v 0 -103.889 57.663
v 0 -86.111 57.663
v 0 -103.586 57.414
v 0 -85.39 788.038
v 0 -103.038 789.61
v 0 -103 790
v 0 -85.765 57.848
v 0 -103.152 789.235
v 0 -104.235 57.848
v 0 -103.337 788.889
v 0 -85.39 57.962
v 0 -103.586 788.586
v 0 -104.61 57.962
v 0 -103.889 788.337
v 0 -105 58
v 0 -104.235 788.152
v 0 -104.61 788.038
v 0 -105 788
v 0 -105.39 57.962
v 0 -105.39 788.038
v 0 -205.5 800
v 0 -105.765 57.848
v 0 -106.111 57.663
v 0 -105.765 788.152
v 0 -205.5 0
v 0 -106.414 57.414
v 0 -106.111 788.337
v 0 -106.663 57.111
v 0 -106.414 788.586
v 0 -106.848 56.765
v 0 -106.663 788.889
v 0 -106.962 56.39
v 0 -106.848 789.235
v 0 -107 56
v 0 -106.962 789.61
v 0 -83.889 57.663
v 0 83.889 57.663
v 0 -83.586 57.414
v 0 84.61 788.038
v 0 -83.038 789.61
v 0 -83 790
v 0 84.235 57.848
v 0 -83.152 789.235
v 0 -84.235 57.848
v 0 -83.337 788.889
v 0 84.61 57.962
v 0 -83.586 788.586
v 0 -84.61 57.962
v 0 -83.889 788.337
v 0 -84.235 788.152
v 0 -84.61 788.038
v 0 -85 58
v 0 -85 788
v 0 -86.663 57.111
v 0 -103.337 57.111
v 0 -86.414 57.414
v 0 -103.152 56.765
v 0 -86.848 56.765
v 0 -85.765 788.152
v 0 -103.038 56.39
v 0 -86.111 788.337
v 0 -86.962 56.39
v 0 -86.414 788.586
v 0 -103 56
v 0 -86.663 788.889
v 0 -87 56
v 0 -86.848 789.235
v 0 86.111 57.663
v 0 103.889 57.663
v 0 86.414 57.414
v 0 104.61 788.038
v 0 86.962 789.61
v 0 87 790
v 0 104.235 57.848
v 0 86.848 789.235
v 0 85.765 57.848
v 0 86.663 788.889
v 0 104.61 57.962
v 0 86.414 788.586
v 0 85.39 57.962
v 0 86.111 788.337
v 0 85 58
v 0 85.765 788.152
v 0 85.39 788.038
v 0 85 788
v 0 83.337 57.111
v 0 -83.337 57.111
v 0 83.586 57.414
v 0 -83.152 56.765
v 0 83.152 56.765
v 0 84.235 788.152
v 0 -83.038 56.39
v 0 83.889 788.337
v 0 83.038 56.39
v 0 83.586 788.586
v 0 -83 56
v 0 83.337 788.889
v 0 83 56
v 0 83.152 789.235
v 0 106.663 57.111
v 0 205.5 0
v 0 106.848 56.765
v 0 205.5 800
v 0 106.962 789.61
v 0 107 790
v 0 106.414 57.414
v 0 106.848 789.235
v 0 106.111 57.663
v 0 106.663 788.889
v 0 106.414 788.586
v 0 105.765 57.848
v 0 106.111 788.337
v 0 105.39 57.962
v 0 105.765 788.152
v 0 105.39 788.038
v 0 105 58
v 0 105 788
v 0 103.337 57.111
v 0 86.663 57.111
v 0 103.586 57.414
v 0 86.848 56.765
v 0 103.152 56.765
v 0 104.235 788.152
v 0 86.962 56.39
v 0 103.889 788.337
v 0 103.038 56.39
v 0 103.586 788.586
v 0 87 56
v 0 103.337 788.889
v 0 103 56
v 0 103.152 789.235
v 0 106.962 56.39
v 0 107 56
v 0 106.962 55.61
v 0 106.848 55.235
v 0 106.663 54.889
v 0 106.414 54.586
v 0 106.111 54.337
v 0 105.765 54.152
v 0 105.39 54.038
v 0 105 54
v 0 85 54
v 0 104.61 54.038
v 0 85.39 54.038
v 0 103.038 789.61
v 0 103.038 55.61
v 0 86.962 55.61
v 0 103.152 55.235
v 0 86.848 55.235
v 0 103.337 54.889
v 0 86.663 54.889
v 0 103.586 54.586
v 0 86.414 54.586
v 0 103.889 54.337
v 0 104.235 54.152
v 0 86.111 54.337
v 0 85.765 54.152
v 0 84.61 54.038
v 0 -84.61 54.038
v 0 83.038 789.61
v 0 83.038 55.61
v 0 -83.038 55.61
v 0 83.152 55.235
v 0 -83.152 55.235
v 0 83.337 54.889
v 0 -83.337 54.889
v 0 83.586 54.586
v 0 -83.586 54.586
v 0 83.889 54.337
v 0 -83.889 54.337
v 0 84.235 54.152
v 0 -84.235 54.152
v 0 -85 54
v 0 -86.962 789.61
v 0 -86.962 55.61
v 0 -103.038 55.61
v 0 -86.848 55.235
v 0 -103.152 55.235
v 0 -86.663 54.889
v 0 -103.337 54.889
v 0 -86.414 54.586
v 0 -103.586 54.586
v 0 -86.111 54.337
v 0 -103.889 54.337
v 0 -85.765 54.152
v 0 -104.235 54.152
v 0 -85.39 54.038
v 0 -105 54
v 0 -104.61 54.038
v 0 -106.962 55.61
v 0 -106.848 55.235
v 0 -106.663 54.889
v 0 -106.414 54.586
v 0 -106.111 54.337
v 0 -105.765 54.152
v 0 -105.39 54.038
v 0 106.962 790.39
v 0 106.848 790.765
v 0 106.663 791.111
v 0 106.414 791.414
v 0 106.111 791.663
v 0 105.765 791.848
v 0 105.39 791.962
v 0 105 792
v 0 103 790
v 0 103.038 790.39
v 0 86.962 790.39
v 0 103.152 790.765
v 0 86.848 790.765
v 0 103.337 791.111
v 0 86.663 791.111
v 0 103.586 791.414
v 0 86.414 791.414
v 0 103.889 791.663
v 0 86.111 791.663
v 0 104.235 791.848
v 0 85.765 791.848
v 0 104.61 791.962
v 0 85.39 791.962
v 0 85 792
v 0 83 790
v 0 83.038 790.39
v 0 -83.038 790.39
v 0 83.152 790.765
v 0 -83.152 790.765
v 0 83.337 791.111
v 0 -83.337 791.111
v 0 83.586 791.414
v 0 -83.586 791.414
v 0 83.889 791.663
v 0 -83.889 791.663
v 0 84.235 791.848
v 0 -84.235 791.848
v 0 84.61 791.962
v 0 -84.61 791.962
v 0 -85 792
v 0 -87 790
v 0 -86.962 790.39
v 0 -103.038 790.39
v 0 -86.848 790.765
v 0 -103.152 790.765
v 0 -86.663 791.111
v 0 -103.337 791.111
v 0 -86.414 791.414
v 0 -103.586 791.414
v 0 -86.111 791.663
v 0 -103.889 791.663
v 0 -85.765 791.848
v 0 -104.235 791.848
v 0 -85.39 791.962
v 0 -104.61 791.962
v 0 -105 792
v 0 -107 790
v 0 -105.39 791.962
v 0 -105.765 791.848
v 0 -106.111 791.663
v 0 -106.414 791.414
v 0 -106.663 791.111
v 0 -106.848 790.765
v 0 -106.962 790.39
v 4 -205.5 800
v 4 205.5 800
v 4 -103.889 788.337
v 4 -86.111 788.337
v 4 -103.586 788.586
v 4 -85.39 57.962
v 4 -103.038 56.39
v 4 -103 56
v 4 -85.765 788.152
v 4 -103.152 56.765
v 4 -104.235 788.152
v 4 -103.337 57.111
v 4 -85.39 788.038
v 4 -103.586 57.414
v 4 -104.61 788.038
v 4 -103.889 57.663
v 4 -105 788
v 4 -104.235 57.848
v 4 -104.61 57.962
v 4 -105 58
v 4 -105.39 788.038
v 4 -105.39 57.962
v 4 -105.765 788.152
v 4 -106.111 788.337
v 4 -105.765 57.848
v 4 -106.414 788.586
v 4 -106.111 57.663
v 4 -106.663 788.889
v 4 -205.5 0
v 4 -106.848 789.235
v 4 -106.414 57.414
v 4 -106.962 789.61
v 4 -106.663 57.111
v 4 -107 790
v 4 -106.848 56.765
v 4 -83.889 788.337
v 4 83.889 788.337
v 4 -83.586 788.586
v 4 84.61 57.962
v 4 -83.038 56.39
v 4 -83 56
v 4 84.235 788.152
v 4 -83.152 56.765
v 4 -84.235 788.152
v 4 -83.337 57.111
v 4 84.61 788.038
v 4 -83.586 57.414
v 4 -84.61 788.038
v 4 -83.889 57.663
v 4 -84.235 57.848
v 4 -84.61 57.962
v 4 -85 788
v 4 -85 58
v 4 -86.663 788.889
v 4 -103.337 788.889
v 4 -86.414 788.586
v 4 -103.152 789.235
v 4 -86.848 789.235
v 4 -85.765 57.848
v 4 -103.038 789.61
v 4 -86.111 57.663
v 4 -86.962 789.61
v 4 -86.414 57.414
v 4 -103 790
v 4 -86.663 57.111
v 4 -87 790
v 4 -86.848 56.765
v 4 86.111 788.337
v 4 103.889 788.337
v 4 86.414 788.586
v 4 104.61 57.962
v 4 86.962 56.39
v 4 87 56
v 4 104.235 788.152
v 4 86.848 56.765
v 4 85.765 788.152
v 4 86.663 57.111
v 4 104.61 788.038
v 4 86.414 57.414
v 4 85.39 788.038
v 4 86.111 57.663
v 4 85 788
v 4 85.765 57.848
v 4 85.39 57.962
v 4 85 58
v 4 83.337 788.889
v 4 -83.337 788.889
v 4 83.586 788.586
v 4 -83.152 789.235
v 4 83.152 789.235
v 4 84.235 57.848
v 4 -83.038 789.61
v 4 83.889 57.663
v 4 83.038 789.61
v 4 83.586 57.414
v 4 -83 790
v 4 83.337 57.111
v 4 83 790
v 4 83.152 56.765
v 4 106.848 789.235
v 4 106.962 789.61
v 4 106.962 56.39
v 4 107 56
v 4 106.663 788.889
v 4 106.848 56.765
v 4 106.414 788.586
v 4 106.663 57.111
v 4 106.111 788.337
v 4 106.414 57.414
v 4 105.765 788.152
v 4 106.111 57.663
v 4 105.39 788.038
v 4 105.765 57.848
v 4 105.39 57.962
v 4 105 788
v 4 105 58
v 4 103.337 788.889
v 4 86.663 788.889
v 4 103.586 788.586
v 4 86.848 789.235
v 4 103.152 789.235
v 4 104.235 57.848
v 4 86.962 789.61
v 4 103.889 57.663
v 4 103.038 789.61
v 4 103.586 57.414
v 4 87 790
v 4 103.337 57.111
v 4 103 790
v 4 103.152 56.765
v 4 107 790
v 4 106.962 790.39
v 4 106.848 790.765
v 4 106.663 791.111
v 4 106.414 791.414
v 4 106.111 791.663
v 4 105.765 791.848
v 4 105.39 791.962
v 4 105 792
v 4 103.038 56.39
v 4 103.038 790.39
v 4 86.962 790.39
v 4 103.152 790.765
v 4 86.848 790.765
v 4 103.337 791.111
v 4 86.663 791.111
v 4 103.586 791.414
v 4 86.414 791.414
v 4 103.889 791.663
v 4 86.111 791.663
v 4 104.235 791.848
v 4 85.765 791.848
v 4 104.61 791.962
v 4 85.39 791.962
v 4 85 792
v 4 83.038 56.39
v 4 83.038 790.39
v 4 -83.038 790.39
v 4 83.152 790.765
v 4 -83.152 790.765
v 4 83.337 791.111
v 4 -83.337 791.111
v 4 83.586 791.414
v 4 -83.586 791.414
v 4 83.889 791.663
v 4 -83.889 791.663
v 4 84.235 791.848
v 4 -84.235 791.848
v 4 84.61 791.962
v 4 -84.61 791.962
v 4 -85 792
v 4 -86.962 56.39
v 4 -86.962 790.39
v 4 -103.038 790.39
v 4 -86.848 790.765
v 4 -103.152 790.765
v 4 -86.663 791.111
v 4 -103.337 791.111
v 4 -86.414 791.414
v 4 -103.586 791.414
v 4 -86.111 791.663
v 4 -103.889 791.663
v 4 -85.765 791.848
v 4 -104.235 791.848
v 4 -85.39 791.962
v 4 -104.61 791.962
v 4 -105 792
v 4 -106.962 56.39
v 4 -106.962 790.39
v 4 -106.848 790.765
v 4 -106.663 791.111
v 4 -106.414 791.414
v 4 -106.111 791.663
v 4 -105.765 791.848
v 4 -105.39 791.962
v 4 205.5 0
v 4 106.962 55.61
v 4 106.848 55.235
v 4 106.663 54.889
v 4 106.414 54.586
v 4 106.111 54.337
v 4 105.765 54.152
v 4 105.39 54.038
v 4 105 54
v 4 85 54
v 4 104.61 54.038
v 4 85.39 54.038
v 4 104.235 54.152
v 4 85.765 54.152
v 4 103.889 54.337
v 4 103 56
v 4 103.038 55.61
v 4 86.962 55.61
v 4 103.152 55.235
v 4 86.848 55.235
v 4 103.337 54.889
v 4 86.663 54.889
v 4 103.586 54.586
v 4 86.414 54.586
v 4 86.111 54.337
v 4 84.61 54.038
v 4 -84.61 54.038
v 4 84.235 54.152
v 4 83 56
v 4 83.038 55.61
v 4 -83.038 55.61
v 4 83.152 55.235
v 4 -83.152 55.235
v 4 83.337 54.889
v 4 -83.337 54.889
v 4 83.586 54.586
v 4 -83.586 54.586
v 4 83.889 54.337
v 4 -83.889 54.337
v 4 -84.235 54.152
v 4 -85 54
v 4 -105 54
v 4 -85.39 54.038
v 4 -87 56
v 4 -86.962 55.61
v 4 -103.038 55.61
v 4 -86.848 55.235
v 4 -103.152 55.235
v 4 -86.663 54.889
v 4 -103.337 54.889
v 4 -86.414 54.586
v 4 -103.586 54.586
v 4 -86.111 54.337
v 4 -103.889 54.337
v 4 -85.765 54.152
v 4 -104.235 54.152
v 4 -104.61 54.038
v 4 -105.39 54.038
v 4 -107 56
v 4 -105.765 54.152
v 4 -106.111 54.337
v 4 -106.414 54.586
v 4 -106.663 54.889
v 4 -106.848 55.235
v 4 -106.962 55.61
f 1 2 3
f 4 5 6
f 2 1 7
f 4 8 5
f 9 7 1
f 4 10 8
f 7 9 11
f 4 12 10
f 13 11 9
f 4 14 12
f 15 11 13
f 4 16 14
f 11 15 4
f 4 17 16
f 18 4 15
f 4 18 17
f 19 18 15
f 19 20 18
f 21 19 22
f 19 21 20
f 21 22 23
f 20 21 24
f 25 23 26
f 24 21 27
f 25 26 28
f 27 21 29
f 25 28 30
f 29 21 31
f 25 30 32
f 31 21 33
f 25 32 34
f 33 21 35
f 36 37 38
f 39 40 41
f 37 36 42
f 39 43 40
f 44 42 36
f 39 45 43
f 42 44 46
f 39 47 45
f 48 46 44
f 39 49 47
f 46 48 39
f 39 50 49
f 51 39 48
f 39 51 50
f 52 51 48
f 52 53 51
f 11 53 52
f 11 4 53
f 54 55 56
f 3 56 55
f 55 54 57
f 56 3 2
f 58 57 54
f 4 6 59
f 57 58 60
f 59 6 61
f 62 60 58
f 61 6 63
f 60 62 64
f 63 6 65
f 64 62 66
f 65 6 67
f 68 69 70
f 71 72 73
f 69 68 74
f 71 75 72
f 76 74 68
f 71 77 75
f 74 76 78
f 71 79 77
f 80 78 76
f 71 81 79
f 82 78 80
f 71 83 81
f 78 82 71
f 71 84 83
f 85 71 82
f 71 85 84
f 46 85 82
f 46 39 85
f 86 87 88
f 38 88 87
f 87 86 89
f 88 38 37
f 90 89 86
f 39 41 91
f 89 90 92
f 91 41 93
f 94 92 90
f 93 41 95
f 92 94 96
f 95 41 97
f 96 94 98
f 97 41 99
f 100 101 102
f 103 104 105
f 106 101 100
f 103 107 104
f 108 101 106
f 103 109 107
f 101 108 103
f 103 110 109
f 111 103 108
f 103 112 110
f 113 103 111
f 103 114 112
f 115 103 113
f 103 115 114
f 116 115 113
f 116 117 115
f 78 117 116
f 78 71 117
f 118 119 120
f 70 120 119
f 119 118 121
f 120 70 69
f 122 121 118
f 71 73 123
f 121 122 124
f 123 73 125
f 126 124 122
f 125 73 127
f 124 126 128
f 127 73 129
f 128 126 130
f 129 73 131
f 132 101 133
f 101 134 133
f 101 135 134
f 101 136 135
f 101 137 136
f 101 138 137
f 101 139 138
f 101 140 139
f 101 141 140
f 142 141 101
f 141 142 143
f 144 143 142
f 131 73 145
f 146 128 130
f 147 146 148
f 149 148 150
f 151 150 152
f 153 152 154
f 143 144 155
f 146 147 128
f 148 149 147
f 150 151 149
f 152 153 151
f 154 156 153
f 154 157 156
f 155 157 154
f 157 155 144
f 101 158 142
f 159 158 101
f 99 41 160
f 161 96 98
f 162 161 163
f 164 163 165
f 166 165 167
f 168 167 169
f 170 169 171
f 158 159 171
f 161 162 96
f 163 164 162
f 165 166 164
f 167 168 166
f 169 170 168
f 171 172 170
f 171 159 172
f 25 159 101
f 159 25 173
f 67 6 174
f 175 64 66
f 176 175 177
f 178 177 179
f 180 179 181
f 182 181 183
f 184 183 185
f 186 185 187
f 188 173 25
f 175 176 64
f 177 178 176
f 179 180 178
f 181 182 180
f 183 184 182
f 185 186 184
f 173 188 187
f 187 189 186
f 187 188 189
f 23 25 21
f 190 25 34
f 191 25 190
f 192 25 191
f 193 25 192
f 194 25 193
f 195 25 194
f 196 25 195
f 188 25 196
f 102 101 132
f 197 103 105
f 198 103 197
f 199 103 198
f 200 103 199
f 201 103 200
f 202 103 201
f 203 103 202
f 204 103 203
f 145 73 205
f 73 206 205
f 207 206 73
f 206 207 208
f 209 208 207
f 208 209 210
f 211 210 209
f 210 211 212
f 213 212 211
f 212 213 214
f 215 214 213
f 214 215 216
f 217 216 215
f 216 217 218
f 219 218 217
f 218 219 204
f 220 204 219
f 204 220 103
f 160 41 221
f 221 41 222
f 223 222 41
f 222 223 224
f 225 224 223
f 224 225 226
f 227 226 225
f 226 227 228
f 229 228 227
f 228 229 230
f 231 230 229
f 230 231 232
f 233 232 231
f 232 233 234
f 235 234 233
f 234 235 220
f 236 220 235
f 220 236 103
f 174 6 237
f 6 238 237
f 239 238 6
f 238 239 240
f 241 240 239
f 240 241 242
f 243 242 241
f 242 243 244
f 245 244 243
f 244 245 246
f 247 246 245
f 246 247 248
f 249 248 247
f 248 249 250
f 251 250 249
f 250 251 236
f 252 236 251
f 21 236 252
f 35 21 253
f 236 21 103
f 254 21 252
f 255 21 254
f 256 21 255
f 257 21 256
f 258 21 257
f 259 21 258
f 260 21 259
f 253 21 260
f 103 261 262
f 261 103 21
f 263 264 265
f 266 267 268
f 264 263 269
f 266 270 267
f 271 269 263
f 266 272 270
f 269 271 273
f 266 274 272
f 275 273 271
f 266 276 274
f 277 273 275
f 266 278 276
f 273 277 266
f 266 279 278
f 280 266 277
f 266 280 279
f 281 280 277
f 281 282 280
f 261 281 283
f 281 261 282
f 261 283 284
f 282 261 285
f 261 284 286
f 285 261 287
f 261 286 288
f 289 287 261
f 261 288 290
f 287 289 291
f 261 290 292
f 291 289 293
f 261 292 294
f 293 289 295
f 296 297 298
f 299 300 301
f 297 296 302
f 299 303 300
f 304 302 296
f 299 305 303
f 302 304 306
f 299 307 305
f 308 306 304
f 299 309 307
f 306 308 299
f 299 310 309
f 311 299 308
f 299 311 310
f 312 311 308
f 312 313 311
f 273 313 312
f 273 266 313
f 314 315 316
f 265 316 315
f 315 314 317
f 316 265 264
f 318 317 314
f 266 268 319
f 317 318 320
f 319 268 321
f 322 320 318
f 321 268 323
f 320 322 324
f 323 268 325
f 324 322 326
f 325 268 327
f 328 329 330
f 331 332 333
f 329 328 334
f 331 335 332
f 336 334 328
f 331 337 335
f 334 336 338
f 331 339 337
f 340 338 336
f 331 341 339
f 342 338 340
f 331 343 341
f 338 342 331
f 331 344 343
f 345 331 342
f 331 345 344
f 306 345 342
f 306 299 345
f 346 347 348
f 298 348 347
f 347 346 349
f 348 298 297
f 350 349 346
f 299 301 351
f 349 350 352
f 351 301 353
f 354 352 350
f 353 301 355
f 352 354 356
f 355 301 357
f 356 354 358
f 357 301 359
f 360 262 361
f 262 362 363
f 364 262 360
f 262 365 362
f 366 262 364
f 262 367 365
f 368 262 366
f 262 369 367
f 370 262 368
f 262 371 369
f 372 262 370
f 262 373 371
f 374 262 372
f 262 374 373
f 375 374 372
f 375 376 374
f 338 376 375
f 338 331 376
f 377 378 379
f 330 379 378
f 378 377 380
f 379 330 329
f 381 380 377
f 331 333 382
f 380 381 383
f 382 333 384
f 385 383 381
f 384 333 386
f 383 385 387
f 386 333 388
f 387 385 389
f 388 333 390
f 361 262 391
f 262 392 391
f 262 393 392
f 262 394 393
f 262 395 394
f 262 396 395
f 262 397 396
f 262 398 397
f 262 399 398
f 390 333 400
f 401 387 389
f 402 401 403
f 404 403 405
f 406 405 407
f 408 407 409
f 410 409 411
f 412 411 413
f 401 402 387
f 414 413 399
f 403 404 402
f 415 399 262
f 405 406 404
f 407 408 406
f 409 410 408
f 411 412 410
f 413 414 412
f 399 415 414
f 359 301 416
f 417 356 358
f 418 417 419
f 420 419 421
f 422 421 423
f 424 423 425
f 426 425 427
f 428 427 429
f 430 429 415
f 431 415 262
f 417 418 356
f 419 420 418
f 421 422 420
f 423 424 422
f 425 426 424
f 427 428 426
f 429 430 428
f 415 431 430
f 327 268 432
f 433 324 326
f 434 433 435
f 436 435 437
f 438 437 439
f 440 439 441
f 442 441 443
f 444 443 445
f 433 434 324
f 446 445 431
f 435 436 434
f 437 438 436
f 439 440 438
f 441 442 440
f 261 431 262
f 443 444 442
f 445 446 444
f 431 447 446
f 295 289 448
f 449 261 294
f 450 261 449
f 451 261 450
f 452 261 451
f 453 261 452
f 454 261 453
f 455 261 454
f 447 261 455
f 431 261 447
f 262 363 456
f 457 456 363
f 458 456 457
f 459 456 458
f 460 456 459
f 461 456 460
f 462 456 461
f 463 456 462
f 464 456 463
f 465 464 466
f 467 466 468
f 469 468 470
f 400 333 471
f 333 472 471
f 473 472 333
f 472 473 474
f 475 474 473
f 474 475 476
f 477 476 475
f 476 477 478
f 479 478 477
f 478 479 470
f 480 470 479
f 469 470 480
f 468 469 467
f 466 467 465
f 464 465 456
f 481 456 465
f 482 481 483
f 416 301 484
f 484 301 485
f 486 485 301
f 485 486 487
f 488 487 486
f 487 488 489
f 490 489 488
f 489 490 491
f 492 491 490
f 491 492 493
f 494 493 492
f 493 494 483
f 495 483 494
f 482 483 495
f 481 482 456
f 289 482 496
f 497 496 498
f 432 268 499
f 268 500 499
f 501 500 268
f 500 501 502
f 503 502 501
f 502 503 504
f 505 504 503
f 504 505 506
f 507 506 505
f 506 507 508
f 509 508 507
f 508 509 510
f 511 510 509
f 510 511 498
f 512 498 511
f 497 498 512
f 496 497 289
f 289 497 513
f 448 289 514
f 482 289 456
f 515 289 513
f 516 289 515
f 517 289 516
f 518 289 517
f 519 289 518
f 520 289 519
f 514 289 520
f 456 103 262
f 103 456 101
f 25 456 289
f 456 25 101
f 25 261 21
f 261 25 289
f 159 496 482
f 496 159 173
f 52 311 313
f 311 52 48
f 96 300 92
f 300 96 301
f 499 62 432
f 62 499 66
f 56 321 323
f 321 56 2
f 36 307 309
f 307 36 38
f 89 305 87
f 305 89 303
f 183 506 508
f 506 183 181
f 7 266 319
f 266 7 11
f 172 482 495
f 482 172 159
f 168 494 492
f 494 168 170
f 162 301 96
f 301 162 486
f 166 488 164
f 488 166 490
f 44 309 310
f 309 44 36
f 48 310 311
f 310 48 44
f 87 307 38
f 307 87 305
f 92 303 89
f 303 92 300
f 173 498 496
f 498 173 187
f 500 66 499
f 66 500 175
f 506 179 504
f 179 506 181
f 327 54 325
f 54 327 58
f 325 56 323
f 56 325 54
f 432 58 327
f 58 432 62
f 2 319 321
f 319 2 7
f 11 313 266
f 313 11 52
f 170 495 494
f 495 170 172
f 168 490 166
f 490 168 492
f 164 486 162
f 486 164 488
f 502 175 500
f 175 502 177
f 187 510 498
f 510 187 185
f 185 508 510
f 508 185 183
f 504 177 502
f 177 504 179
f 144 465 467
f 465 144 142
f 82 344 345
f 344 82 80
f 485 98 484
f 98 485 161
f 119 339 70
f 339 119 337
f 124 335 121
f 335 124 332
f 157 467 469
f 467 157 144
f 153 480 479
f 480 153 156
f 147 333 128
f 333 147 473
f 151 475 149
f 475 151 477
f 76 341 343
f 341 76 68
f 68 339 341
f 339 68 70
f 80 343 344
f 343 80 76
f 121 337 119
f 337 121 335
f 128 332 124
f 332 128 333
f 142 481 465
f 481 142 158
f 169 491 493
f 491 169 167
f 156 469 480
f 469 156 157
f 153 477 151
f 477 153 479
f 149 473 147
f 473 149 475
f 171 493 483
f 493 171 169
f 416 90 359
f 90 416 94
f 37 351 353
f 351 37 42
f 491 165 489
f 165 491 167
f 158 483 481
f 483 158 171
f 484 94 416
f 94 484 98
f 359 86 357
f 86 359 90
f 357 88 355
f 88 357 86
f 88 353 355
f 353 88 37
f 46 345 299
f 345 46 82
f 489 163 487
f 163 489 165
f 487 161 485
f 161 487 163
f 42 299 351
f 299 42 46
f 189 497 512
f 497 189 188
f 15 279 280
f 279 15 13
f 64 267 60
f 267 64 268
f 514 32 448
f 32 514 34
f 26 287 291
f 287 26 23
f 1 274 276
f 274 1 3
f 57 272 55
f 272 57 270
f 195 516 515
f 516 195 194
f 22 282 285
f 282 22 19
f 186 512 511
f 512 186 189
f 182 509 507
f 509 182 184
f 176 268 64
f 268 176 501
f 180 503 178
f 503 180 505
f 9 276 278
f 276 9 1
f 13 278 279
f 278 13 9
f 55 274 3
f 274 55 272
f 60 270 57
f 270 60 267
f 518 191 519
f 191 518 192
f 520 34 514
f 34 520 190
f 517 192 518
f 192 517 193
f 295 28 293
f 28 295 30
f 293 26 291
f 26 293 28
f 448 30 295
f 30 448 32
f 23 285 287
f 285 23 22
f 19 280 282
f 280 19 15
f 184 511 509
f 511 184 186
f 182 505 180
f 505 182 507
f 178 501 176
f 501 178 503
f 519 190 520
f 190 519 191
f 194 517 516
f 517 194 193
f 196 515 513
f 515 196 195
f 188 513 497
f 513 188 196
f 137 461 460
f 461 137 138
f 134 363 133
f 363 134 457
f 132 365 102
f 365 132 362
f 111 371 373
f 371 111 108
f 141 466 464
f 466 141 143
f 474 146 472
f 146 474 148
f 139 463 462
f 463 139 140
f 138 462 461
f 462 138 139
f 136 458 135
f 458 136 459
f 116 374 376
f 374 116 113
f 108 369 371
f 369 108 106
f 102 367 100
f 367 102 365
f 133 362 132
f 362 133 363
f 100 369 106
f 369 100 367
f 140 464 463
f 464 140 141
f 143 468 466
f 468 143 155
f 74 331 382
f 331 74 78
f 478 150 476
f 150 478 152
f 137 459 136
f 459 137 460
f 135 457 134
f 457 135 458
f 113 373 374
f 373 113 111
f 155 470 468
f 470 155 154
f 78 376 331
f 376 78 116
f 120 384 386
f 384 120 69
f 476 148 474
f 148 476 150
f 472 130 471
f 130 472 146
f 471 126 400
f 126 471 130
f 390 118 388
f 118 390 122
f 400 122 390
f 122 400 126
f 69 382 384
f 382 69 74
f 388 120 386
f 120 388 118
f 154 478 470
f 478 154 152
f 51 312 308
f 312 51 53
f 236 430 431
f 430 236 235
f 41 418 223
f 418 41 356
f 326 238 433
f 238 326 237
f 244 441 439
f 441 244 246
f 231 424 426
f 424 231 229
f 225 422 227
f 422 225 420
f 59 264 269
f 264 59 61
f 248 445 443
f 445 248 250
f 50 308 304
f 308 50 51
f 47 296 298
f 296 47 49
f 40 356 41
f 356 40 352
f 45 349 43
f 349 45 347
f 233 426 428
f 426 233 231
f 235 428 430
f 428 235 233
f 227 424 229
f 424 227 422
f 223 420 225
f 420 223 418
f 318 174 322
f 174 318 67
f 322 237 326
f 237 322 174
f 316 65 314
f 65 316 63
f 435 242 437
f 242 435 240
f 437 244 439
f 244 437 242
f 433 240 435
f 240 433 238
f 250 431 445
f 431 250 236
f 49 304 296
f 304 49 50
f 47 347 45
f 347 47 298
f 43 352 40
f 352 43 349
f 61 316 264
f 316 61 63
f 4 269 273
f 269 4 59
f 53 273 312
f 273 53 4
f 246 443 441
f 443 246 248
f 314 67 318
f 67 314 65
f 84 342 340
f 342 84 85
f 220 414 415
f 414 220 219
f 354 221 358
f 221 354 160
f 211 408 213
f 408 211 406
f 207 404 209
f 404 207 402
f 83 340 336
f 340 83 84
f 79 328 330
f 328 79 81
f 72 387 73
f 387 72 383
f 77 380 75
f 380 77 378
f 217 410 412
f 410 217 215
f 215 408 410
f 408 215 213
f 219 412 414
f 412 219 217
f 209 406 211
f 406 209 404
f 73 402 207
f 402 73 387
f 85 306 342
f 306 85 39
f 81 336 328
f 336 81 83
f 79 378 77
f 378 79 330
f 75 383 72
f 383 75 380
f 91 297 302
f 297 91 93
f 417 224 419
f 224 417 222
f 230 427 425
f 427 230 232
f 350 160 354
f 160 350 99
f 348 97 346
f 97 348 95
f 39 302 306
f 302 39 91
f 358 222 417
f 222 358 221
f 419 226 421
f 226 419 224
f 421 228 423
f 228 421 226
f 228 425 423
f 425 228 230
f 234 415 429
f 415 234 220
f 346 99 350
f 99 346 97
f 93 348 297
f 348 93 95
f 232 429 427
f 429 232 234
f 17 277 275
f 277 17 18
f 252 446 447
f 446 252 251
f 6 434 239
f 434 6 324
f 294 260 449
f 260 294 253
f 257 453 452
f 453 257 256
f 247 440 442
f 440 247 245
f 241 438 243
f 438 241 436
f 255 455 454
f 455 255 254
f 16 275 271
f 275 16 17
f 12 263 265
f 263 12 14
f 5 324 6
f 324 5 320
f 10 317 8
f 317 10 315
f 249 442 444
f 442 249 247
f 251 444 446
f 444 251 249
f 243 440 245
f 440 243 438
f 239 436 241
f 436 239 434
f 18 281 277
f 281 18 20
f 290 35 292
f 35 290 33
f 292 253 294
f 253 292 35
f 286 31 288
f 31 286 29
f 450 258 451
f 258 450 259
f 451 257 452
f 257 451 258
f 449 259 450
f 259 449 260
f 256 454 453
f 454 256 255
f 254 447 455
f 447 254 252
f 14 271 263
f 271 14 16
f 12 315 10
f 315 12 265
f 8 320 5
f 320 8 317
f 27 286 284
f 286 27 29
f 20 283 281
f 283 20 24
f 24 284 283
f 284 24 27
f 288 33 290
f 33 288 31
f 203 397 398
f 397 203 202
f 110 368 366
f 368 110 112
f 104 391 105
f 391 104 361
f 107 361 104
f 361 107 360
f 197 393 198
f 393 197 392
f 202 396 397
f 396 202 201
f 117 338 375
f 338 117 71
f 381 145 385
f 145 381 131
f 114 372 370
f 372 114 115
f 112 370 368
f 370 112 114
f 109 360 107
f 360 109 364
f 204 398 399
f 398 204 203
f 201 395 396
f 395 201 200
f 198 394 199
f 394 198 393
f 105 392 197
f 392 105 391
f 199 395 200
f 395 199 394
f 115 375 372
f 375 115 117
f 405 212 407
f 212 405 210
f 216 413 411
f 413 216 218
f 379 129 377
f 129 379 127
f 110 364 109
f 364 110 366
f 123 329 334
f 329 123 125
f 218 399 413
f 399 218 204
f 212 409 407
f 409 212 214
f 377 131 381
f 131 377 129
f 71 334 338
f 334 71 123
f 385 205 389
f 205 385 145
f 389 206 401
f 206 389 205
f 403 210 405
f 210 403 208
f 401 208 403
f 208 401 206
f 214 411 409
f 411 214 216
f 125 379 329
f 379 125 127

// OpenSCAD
/**********************************************************************************************************************
 **
 ** parts/sheets/enclosure_long_side.scad
 **
 ** This file generates the intransparent parts of the enclosure that are mounted opposite to the A and B rails.
 ** This file is intended to be included by other files down the line.
 **
 **********************************************************************************************************************/

include <../../conf/colors.scad>
include <../../conf/derived_sizes.scad>
include <../../conf/part_sizes.scad>

use <../../bom/bom.scad>

use <../../parts/vitamins/vitamins.scad>

/**
 * Provides the pre-rendered plate. 
 */
module enclosure_long_side_plate() {
	bom_entry(section = "Sheet / Multiplex Plywood", 
		      description = "Enclosure Long Side Plate", 
		      size = str(enclosure_long_side_width(), " x ", enclosure_long_side_height(), " x ", enclosure_long_side_thickness(), "  mm"));
	color_enclosure_solid()
		import(file = "enclosure_long_side.stl"); 
}

/**
 * Renders a screw hole.
 */
module _enclosure_long_side_screw_hole() {
	translate([-epsilon(), 0, 0])	
		rotate([0, 90, 0])
			cylinder(d = frame_screw_size(), 
				     h = enclosure_long_side_thickness() + 2 * epsilon(), 
			     	 $fn = enclosure_hole_resolution());	
}

/**
 * Renders a screw and washer.
 */
module _enclosure_long_side_screw() {
	translate([-washer_thickness(frame_screw_size()) - epsilon(), 0, 0]) 
		washer(frame_screw_size());
	translate([-washer_thickness(frame_screw_size()) - 2 * epsilon(), 0, 0]) 
		screw(size = frame_screw_size(), min_length = 8 + enclosure_long_side_thickness() + enclosure_insulation_thickness());
	nut_tslot(frame_screw_size());	
}

/** 
 * Renders the plate. This module is not intended to be called outside of this file.
 */
module _render_enclosure_long_side_plate() {
	difference() {
		// the base plate
		translate([0, -enclosure_long_side_width()/2, 0])
			cube([enclosure_long_side_thickness(), enclosure_long_side_width(), enclosure_long_side_height()]);

		// minus the mounting holes through the bed bracket
		translate([0, -enclosure_long_side_inner_hole_offset(), bed_horizontal_extrusion_center_height()])
			_enclosure_long_side_screw_hole();
		translate([0, enclosure_long_side_inner_hole_offset(), bed_horizontal_extrusion_center_height()])
			_enclosure_long_side_screw_hole();
		
		translate([0, -enclosure_long_side_outer_hole_offset(), bed_horizontal_extrusion_center_height()])
			_enclosure_long_side_screw_hole();
		translate([0, enclosure_long_side_outer_hole_offset(), bed_horizontal_extrusion_center_height()])
			_enclosure_long_side_screw_hole();

		// minus the mounting holes through the head
		translate([0, -enclosure_long_side_inner_hole_offset(), head_horizontal_extrusion_center_height()])
			_enclosure_long_side_screw_hole();
		translate([0, enclosure_long_side_inner_hole_offset(), head_horizontal_extrusion_center_height()])
			_enclosure_long_side_screw_hole();

		translate([0, -enclosure_long_side_outer_hole_offset(), head_horizontal_extrusion_center_height()])
			_enclosure_long_side_screw_hole();
		translate([0, enclosure_long_side_outer_hole_offset(), head_horizontal_extrusion_center_height()])
			_enclosure_long_side_screw_hole();

	}
}

/**
 * Provides the hardware to mount the plate.
 */
module enclosure_long_side_plate_hardware() {

	// the mounting screws through the bed bracket
	translate([0, -enclosure_long_side_outer_hole_offset(), bed_horizontal_extrusion_center_height()])
		_enclosure_long_side_screw();
	translate([0, enclosure_long_side_outer_hole_offset(), bed_horizontal_extrusion_center_height()])
		_enclosure_long_side_screw();

	// the mounting screws through the head
	translate([0, -enclosure_long_side_outer_hole_offset(), head_horizontal_extrusion_center_height()])
		_enclosure_long_side_screw();
	translate([0, enclosure_long_side_outer_hole_offset(), head_horizontal_extrusion_center_height()])
		_enclosure_long_side_screw();
}

_render_enclosure_long_side_plate();
